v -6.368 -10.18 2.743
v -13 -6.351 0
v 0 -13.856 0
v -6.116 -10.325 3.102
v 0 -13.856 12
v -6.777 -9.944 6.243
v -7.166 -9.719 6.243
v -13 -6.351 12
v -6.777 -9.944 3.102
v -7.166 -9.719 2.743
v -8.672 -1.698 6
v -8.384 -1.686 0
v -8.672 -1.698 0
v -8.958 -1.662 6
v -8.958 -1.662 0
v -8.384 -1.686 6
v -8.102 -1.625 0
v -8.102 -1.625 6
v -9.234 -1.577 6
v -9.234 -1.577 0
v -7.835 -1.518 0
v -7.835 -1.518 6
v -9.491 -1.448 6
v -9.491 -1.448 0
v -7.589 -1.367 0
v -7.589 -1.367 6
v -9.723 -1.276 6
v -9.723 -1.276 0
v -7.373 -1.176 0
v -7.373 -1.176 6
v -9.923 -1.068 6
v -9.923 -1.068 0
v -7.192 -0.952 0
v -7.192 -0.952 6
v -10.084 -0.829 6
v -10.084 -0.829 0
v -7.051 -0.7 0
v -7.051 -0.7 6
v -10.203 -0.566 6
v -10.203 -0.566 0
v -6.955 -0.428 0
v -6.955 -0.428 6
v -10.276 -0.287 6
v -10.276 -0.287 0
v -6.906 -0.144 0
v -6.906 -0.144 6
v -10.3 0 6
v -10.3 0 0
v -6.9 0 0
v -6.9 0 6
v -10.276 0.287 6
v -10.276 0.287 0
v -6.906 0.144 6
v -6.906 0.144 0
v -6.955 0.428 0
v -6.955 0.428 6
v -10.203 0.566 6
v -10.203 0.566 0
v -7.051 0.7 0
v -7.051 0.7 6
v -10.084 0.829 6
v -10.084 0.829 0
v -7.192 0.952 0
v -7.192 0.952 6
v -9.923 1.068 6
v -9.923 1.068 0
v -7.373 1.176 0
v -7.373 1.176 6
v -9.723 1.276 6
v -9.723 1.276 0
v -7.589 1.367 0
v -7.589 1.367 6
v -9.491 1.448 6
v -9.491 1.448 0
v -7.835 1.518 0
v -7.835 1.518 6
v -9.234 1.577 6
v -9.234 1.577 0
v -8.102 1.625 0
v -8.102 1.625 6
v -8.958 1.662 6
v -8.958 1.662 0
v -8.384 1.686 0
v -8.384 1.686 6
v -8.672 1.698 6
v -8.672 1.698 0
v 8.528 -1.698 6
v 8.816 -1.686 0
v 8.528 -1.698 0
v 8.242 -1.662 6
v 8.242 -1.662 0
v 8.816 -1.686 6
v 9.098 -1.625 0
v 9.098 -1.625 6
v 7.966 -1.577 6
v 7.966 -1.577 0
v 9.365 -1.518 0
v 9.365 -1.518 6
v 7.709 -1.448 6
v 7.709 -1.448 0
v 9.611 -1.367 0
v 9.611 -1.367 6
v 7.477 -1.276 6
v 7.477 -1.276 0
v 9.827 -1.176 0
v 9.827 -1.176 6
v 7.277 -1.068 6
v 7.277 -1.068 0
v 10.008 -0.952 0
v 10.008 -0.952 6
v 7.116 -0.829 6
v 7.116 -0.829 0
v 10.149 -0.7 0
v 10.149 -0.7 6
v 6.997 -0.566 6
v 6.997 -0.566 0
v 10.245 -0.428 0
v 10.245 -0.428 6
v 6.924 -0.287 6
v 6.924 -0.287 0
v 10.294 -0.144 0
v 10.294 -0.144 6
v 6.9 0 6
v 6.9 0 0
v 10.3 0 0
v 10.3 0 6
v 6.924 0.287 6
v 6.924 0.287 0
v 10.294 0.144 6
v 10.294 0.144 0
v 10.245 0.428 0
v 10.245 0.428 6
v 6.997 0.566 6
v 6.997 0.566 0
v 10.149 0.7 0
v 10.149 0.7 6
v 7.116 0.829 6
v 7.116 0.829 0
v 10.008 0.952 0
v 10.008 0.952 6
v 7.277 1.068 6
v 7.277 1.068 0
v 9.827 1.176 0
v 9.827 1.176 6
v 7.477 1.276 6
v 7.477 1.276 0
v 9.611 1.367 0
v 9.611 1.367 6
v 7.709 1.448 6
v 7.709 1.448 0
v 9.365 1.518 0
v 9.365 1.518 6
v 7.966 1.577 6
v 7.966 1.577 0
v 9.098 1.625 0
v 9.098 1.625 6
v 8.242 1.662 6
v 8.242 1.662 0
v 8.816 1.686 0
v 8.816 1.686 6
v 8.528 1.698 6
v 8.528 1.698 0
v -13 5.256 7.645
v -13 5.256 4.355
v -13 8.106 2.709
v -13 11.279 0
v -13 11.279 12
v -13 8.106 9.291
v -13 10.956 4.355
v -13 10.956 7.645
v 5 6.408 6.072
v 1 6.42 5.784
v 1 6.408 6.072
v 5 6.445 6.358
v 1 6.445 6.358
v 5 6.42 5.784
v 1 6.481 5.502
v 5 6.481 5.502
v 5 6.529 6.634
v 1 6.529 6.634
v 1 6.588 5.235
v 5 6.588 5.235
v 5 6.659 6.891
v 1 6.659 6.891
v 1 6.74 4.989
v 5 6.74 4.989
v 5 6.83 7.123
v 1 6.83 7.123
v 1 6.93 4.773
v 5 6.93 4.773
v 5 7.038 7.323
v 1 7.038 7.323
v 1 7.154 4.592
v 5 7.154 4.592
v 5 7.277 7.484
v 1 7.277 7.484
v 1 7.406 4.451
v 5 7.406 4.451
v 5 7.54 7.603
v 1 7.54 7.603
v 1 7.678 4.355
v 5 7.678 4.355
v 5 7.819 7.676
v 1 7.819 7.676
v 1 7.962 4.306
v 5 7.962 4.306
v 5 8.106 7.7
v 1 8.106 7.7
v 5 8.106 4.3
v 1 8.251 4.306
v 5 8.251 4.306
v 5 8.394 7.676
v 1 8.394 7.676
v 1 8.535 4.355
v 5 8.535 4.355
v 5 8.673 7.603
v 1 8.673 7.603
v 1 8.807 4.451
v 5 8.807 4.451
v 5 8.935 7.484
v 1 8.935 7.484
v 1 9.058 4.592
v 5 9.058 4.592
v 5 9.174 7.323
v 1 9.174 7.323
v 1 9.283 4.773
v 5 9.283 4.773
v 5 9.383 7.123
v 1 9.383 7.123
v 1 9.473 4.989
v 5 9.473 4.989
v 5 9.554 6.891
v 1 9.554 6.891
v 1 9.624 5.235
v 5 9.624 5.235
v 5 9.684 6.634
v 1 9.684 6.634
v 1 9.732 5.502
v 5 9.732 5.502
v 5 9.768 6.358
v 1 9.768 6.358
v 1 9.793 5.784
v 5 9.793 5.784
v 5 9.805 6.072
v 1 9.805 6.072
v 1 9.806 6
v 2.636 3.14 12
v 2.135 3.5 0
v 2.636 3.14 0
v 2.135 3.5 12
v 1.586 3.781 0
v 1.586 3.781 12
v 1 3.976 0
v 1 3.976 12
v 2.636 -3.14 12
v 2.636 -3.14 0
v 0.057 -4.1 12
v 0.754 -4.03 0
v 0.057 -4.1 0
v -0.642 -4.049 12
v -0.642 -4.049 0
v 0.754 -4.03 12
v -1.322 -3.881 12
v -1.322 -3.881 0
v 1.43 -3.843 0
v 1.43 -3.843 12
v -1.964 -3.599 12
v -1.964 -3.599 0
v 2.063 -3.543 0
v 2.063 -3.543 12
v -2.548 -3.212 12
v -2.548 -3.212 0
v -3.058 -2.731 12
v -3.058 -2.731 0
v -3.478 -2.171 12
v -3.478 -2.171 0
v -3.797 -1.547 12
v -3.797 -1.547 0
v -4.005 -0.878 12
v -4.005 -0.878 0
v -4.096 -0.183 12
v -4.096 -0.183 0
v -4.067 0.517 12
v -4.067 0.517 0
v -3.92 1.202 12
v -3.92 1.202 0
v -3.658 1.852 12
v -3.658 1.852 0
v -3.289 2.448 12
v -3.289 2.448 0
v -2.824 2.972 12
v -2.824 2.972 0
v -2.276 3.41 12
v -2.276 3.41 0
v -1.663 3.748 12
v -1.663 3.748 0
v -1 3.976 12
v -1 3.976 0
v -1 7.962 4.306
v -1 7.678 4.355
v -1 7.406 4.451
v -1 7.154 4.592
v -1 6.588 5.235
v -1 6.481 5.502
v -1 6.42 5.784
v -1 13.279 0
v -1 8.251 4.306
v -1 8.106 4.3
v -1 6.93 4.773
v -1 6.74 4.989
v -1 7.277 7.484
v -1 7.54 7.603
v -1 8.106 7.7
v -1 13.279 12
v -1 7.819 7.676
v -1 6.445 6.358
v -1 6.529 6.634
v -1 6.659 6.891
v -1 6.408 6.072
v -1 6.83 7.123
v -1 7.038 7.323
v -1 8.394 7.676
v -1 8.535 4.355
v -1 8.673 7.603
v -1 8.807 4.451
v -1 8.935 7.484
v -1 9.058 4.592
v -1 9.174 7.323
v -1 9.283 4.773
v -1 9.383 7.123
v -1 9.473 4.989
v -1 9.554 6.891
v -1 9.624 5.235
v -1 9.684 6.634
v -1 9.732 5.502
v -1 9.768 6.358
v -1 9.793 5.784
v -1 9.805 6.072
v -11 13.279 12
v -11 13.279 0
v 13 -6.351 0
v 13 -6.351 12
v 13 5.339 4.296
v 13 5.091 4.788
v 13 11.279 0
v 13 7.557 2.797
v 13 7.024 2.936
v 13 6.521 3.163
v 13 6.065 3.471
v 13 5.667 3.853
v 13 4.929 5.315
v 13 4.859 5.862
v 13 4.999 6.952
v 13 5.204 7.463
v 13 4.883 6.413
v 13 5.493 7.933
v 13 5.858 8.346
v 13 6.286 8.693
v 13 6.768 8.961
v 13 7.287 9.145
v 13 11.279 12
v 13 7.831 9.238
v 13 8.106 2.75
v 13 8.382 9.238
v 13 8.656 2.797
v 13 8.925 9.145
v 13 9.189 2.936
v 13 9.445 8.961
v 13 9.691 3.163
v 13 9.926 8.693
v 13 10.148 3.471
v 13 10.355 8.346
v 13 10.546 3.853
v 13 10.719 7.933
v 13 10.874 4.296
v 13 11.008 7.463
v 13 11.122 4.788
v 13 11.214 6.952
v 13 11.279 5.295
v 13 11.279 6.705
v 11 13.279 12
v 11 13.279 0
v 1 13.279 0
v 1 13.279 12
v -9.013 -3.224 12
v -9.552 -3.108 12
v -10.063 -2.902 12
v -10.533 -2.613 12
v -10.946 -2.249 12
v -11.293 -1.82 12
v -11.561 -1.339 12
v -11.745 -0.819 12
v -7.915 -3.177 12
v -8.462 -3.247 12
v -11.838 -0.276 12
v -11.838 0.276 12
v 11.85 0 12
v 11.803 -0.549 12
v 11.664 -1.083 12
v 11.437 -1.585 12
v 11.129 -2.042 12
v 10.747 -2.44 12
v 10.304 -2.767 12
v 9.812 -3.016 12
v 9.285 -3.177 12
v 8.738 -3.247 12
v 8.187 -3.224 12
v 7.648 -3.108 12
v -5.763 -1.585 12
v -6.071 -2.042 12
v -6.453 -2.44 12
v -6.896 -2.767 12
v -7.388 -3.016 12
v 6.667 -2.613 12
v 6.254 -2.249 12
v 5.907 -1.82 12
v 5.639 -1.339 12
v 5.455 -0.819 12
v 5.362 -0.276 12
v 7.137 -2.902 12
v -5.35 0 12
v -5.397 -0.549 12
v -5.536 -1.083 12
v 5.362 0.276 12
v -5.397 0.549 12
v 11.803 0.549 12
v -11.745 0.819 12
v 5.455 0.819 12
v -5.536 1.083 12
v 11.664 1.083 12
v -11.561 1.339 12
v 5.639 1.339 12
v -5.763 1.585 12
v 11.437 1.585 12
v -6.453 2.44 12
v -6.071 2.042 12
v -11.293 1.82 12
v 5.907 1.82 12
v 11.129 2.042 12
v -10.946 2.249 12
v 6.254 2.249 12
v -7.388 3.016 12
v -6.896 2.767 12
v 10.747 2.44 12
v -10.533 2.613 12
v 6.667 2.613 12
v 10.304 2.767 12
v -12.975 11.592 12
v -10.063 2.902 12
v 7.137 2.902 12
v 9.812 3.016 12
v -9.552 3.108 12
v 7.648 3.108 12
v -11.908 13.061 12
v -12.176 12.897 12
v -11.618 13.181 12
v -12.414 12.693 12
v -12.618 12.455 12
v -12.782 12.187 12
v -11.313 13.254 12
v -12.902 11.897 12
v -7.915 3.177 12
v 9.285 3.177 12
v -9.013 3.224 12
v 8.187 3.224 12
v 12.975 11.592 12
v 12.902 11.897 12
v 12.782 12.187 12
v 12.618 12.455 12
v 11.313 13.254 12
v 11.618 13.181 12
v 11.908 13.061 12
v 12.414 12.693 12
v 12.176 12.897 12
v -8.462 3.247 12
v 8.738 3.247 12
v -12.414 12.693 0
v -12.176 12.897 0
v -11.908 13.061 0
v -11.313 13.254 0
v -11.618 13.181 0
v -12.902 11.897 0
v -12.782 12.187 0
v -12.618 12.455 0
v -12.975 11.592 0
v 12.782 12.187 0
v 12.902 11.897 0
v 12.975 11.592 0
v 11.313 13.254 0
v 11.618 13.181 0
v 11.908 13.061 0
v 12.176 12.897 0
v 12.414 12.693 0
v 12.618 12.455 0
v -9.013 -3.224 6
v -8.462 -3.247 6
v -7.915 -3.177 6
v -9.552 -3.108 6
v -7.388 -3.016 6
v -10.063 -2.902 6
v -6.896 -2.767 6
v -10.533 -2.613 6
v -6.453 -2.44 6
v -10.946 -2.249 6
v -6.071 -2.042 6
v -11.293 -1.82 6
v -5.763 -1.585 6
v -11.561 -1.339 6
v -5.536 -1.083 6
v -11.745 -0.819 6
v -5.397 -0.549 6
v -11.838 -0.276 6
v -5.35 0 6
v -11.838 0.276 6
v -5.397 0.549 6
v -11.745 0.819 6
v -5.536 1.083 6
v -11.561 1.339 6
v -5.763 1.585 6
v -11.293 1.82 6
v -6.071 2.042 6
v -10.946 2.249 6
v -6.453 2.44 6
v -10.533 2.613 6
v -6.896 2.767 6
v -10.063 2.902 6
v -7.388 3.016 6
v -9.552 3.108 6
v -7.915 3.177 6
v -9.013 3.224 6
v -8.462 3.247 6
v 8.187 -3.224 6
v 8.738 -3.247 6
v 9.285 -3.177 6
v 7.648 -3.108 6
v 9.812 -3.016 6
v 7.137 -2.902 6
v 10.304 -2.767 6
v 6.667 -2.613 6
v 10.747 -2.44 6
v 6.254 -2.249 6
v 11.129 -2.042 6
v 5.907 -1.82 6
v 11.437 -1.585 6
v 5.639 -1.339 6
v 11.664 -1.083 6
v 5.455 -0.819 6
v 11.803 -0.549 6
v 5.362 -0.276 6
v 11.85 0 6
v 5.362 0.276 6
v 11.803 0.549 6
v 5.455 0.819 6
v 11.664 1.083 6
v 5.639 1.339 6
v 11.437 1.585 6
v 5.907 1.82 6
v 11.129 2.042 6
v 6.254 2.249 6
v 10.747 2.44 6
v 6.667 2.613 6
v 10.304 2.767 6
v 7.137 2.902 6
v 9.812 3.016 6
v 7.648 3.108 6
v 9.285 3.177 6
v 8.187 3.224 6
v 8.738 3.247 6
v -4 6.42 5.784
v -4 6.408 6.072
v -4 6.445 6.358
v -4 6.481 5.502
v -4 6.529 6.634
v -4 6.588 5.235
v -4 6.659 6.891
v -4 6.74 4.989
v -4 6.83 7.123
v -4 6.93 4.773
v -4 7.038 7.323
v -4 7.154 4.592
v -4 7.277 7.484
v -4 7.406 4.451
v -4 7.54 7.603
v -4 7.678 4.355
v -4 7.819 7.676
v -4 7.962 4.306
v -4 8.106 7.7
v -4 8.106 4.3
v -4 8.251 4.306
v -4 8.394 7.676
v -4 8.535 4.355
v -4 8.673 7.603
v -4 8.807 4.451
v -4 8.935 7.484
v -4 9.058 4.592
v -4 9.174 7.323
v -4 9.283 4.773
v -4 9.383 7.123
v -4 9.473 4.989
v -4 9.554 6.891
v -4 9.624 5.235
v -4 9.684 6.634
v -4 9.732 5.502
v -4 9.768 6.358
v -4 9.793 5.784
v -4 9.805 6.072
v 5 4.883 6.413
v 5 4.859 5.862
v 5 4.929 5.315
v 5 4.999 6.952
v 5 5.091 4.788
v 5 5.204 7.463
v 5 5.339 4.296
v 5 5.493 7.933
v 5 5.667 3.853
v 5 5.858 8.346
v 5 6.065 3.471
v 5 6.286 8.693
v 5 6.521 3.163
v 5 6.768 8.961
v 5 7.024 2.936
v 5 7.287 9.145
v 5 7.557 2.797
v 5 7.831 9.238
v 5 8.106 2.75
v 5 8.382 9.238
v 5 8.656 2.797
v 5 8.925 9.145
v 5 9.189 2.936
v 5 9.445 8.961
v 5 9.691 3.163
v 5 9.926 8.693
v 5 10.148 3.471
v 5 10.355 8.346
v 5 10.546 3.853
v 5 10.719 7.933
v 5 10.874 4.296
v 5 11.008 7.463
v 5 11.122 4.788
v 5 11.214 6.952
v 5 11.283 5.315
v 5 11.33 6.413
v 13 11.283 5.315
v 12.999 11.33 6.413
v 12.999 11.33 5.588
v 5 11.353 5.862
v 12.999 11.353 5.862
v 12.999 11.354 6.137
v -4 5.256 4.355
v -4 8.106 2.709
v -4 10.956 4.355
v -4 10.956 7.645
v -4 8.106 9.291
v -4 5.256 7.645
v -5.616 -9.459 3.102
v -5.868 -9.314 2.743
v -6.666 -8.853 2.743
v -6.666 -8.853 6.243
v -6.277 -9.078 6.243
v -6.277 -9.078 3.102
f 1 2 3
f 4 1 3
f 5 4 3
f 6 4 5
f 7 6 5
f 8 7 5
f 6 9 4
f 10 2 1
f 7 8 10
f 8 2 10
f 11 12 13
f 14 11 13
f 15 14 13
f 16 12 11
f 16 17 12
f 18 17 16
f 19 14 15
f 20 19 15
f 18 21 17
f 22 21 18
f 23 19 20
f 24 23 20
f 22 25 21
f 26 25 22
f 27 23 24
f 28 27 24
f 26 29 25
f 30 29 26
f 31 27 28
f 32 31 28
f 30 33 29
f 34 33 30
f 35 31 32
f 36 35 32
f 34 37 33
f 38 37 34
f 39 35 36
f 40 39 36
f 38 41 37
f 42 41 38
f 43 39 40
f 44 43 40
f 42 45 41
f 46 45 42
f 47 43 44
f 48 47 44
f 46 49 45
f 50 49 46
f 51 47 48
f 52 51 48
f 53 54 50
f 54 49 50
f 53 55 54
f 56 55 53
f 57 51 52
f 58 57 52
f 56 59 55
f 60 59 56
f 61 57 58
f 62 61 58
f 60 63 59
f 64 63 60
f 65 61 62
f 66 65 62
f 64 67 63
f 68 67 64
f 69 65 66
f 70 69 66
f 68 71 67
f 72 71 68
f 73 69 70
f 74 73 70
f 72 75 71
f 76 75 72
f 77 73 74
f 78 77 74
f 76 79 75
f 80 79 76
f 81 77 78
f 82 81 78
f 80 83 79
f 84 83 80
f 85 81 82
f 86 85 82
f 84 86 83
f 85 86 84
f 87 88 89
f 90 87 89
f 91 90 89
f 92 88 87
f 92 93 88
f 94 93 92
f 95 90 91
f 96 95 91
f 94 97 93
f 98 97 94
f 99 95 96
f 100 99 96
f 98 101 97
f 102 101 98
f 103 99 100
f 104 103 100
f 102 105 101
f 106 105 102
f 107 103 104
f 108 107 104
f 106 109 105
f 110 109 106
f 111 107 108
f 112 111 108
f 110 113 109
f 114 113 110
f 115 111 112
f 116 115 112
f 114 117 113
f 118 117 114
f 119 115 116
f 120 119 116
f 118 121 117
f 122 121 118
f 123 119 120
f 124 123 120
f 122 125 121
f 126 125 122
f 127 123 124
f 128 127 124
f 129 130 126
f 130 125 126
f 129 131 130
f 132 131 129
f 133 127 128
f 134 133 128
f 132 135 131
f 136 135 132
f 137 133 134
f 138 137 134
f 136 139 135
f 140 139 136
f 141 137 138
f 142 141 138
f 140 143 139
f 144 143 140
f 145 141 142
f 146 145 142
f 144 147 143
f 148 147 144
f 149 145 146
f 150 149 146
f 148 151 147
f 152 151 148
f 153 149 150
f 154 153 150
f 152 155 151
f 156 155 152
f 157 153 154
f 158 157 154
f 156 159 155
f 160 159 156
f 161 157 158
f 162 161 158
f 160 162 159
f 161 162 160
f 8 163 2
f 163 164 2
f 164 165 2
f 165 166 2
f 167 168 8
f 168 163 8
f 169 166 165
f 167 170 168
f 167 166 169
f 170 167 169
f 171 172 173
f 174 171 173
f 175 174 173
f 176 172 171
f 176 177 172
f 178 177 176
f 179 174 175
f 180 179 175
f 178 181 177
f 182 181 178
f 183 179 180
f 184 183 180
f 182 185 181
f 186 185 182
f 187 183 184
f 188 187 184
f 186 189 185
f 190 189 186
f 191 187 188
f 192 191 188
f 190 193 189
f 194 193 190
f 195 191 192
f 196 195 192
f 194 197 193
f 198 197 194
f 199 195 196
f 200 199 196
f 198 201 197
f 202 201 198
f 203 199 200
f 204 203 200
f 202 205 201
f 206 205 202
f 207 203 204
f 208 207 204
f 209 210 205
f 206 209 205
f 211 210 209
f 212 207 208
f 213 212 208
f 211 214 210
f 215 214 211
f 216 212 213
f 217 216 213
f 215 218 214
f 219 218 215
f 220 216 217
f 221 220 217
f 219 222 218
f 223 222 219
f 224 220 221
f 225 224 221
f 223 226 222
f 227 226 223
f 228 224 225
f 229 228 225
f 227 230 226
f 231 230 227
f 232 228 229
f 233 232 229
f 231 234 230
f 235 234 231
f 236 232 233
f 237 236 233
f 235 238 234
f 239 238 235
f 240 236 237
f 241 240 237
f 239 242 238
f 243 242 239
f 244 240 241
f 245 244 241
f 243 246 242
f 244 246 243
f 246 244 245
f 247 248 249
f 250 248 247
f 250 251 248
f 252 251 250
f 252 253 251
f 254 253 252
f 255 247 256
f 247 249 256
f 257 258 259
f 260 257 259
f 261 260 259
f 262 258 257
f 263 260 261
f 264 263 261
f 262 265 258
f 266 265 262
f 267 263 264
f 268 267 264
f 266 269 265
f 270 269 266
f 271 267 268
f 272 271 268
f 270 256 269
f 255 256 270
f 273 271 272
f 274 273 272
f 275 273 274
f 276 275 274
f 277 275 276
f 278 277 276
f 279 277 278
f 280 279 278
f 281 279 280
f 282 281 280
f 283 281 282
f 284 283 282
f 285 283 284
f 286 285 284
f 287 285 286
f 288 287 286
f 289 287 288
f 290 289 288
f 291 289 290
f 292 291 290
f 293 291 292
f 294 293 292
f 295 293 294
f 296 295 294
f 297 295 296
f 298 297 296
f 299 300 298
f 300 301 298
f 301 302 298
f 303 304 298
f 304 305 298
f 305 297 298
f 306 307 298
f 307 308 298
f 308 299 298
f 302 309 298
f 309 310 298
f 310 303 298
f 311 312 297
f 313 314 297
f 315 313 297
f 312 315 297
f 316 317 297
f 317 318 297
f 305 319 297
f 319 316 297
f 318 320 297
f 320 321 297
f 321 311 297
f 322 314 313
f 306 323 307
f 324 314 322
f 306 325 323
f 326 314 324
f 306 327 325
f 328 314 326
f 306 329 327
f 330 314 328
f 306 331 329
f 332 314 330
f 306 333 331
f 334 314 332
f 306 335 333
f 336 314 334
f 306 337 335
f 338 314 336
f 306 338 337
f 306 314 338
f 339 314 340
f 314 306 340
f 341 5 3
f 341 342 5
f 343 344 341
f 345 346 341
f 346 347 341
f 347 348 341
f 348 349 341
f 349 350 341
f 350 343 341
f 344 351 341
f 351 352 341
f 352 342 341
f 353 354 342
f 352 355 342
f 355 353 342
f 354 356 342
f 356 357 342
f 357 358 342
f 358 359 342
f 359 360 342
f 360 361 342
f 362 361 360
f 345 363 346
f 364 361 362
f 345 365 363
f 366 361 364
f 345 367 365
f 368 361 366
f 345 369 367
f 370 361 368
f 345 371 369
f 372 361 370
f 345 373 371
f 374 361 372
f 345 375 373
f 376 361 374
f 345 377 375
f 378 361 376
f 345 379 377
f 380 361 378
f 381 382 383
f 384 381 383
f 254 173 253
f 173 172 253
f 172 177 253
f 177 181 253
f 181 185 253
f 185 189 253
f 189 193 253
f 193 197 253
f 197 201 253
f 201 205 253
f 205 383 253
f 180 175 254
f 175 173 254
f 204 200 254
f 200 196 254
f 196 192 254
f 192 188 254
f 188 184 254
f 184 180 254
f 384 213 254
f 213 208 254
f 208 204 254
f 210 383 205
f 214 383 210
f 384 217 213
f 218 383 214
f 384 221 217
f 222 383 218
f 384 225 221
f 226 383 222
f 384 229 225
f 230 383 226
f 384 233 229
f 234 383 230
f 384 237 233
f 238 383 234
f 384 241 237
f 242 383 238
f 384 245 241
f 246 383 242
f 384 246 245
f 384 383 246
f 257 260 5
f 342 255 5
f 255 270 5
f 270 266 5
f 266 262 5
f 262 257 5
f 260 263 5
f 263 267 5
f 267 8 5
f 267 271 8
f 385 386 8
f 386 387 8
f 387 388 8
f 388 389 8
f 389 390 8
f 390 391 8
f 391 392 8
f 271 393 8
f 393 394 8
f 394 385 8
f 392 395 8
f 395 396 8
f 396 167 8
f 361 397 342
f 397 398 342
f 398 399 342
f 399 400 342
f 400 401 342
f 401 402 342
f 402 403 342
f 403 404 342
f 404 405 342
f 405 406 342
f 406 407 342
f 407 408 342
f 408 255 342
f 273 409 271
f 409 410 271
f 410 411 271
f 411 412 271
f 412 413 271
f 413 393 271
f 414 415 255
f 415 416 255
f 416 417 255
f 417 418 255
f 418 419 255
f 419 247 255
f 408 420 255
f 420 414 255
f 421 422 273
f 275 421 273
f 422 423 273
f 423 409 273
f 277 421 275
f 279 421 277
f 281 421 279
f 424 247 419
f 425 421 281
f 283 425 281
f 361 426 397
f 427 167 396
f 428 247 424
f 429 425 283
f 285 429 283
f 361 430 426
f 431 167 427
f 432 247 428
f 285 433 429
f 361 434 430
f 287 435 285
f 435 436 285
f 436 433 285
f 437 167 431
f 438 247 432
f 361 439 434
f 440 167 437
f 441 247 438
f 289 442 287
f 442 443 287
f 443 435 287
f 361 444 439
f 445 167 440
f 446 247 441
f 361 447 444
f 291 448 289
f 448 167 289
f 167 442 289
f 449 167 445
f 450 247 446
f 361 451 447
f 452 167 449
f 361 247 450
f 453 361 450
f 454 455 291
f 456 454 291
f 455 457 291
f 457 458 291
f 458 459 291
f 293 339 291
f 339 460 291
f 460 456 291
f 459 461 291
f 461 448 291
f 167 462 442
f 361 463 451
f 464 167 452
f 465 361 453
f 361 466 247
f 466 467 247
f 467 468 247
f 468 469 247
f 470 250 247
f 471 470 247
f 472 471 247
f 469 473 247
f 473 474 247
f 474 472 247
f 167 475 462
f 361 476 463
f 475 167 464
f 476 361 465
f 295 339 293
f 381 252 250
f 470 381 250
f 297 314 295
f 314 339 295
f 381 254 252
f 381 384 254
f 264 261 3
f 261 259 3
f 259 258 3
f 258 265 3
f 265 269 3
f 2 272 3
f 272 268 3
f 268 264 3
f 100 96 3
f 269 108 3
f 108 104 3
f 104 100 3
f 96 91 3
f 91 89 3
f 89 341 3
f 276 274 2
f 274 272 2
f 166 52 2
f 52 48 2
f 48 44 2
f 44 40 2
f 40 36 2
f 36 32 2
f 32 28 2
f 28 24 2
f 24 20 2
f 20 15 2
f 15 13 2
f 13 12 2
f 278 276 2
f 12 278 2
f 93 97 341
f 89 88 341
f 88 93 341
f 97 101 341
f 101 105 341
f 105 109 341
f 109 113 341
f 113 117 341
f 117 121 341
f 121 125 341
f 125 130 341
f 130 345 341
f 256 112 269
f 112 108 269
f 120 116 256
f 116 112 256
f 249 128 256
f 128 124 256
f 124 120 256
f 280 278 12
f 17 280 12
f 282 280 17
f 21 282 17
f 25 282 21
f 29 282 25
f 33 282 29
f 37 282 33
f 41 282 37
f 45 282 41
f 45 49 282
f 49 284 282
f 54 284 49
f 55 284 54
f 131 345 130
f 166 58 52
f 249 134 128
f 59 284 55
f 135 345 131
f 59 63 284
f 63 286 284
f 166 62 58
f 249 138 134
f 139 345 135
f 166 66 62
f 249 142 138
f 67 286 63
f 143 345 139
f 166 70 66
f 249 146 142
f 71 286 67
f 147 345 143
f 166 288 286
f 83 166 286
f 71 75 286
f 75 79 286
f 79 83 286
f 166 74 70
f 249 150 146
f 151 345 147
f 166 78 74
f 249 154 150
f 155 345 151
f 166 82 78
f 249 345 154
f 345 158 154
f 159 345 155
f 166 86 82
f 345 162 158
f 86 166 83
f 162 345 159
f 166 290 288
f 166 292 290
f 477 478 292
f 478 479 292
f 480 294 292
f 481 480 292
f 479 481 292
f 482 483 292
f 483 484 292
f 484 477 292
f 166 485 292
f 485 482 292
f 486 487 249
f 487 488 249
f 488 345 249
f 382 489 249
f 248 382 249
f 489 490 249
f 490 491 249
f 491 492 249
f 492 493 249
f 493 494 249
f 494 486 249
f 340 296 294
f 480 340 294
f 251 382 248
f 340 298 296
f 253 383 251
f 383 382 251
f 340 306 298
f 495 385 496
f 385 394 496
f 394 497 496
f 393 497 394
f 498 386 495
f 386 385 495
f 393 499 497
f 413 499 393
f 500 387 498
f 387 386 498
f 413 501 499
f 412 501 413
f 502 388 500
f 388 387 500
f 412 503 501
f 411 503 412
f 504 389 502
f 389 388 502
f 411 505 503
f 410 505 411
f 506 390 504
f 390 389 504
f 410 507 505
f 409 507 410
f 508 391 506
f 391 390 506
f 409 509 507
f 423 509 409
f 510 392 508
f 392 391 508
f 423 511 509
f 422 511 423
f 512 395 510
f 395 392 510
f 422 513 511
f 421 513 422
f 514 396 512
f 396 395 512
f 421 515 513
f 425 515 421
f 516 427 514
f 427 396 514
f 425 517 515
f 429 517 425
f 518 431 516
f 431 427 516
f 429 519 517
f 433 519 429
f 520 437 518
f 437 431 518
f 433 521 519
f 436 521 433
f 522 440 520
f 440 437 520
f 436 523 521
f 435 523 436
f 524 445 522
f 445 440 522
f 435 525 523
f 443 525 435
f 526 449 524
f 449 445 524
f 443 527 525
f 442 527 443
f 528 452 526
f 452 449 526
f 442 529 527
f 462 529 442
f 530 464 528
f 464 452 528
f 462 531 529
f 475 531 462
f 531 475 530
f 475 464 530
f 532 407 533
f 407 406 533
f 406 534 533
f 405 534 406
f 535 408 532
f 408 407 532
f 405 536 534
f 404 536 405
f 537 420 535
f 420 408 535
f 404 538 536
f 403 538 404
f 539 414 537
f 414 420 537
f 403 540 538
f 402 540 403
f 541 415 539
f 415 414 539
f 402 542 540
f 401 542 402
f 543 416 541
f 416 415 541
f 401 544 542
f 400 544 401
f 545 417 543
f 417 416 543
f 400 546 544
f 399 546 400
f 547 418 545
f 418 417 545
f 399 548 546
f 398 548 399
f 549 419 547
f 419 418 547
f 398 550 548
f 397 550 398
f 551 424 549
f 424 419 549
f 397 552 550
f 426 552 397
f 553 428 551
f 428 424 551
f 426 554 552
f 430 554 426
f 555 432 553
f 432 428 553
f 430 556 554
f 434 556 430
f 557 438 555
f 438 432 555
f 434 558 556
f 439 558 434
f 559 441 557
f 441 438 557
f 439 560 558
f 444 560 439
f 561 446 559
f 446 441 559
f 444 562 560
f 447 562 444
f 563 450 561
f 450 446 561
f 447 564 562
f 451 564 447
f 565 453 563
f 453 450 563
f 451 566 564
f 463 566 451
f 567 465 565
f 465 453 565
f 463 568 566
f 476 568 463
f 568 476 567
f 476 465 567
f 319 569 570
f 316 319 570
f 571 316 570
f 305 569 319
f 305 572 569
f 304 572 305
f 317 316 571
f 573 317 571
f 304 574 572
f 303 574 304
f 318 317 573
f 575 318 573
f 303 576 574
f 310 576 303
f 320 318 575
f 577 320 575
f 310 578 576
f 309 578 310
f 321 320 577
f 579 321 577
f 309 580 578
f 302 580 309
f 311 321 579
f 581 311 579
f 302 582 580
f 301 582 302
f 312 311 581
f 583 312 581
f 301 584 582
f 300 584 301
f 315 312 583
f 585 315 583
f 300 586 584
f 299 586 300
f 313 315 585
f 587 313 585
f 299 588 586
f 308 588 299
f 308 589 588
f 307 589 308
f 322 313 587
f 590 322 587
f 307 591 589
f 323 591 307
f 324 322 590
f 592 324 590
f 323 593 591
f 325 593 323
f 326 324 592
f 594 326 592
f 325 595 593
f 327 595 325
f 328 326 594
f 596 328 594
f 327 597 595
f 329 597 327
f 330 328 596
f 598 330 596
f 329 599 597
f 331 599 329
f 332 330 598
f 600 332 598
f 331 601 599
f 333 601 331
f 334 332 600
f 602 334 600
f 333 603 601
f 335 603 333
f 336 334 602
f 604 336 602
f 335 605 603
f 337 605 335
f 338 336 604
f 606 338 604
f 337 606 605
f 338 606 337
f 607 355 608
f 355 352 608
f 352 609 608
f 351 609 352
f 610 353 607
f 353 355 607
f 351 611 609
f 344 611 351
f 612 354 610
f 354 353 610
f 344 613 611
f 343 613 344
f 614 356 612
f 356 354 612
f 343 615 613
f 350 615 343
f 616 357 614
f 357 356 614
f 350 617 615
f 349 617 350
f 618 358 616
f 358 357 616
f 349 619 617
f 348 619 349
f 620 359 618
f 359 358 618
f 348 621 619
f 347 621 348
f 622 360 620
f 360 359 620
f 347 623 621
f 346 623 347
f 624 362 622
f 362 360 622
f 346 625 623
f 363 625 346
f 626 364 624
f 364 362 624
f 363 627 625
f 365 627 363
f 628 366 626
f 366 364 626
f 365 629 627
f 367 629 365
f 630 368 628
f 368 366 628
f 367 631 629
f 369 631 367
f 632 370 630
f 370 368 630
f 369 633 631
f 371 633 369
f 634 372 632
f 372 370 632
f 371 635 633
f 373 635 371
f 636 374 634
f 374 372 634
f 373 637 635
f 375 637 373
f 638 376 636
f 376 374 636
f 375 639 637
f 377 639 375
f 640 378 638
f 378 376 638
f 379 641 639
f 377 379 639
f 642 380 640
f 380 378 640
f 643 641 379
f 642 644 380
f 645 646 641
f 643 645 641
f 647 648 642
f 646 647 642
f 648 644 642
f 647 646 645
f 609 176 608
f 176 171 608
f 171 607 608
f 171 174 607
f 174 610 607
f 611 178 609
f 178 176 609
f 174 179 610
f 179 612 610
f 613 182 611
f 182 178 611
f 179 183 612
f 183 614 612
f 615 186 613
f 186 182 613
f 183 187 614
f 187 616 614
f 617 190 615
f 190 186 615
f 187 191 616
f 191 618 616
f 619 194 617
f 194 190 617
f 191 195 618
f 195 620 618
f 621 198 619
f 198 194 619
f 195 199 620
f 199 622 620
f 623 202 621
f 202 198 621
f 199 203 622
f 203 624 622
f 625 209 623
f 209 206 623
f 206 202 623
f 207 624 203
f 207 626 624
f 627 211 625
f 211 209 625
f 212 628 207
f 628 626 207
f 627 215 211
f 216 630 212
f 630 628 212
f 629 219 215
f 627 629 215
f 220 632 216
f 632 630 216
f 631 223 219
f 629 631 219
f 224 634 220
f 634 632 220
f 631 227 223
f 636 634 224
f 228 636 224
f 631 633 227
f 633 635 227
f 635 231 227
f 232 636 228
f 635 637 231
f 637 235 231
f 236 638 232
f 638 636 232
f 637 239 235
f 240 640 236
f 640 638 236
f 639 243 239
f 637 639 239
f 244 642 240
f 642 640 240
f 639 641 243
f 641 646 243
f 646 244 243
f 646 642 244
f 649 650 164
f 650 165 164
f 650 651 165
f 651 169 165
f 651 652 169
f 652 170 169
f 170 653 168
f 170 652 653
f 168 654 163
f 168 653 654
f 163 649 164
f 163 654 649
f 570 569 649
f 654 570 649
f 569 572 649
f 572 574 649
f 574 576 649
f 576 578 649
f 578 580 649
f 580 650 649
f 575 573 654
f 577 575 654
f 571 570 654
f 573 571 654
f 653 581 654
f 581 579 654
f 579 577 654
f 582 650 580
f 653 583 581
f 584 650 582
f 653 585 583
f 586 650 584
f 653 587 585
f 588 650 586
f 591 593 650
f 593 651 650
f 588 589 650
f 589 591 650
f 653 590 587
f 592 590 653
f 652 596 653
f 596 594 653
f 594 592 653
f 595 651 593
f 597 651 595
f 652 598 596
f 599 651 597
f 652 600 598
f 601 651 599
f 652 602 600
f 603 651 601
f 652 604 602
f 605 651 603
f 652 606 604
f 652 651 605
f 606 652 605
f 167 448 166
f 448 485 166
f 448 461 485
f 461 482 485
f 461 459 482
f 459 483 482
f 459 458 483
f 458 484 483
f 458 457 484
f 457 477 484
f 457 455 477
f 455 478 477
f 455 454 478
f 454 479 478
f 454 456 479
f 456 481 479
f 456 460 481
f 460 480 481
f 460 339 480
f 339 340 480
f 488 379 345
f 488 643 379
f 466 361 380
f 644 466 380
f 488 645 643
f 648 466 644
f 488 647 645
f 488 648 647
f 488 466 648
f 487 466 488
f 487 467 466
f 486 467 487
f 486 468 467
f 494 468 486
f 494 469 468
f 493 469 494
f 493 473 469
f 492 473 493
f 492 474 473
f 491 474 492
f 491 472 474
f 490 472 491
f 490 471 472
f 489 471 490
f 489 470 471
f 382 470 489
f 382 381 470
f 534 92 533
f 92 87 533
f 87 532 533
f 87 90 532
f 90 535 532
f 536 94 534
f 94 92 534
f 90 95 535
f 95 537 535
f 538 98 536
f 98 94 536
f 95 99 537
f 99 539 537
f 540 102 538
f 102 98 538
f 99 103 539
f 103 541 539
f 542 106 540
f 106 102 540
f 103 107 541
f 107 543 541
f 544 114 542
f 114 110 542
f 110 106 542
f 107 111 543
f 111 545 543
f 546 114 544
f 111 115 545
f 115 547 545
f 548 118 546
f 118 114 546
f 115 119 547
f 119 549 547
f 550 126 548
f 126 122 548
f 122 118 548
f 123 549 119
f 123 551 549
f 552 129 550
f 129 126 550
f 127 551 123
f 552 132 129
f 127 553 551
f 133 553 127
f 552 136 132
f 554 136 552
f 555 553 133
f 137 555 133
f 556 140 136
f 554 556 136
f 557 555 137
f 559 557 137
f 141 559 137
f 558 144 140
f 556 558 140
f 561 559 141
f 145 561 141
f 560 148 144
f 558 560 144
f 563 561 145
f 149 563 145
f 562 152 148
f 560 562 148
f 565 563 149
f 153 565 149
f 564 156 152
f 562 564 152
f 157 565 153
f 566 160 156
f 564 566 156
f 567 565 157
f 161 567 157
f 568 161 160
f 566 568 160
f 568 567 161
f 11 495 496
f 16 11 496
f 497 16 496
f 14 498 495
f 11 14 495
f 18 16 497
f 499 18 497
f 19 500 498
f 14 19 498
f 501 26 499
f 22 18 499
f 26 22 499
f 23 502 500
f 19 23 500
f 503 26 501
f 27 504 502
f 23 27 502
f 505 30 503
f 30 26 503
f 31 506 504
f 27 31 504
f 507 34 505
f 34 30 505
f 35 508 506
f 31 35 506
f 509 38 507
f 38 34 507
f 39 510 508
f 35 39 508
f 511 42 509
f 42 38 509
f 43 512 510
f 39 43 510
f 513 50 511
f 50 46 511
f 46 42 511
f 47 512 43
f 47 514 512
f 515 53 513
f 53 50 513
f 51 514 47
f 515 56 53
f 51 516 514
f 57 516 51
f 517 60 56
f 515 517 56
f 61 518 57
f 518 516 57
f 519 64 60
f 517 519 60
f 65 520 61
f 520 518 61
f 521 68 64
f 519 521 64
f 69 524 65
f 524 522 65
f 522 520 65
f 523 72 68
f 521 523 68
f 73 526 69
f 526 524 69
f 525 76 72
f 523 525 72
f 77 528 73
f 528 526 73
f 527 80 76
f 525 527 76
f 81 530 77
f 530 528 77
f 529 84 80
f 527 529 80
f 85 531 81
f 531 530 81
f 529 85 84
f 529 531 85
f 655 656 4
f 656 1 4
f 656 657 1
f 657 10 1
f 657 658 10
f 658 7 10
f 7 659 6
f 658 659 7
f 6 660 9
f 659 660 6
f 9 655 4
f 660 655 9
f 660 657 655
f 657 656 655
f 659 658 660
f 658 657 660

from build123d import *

# Parameters (mm, degrees)
BOSS_EXTRUDE1_DEPTH            = 12
SKETCH41_R                     = 1.7
CUT_EXTRUDE7_DEPTH             = 18
CBORE_FOR_M3_SHCS1_D           = 3.4
CBORE_FOR_M3_SHCS1_CBORE_D     = 6.5
CBORE_FOR_M3_SHCS1_CBORE_DEPTH = 3
F_3DSKETCH3_START              = 9
F_3DSKETCH3_OUTLINE_R          = 3.25
F_3DSKETCH3_OUTLINE_R_2        = 1.7
F_3DSKETCH3_DEPTH              = 3
CUT_EXTRUDE10_DEPTH            = 15
CUT_EXTRUDE10_DEPTH_BACK       = 15
SKETCH52_R                     = 1.7
SKETCH58_R                     = 3.25
CUT_EXTRUDE11_DEPTH            = 8
CUT_EXTRUDE12_DEPTH            = 4
CUT_EXTRUDE12_DEPTH_BACK       = 6
FILLET1_R                      = 2
SKETCH61_R                     = 3.25
CUT_EXTRUDE13_DEPTH            = 6
CUT_EXTRUDE14_DEPTH            = 1


# Read off the part's stored shape, not the designer's step: 3DSketch3
with BuildPart() as part:
    # Sketch1 → Boss-Extrude1 (new body)
    with BuildSketch(Plane(origin=(0, 0, 0), x_dir=(0, 1, 0), z_dir=(0, 0, 1))):
        with BuildLine():
            Line((-6.350852961, -13), (13.279056191, -13))
            Line((13.279056191, -13), (13.279056191, -1))
            Line((13.279056191, -1), (3.97617907, -1))
            ThreePointArc((3.97617907, -1), (3.650947901, -1.865631106), (3.14, -2.636361129))
            Line((3.14, -2.636361129), (-3.14, -2.636361129))
            ThreePointArc((-3.14, -2.636361129), (-3.852531635, -1.402854233), (-4.1, 0))
            ThreePointArc((-4.1, 0), (-0.503818326, 4.06892702), (3.97617907, 1))
            Line((3.97617907, 1), (13.279056191, 1))
            Line((13.279056191, 1), (13.279056191, 13))
            Line((13.279056191, 13), (-6.350852961, 13))
            Line((-6.350852961, 13), (-13.856406461, 0))
            Line((-13.856406461, 0), (-6.350852961, -13))
        make_face()
    extrude(amount=BOSS_EXTRUDE1_DEPTH)

    # Sketch41 → Cut-Extrude7 (cut)
    with BuildSketch(Plane(origin=(0, 0, 0), x_dir=(0, 1, 0), z_dir=(0, 0, 1))):
        with Locations(Location((0, 8.6, 0), (0, 0, 270))):
            Circle(SKETCH41_R)
        with Locations(Location((0, -8.6, 0), (0, 0, 270))):
            Circle(SKETCH41_R)
    extrude(amount=CUT_EXTRUDE7_DEPTH, mode=Mode.SUBTRACT)

    # CBORE for M3 SHCS1 (through all)
    with Locations(Plane(origin=(-8.6, 0, 12), x_dir=(1, 0, 0), z_dir=(0, 0, 1))):
        with Locations((0, 0)):
            CounterBoreHole(CBORE_FOR_M3_SHCS1_D / 2, CBORE_FOR_M3_SHCS1_CBORE_D / 2, CBORE_FOR_M3_SHCS1_CBORE_DEPTH)

    # 3DSketch3 outline → 3DSketch3 (cut)
    with BuildSketch(Plane.XY.offset(F_3DSKETCH3_START)):
        with Locations((8.6, 0)):
            Circle(F_3DSKETCH3_OUTLINE_R)
        with Locations((8.6, 0)):
            Circle(F_3DSKETCH3_OUTLINE_R_2, mode=Mode.SUBTRACT)
    extrude(amount=F_3DSKETCH3_DEPTH, mode=Mode.SUBTRACT)

    # Sketch52 → Cut-Extrude10 (cut, two sides: drawn at the far end of the back side and taken through both)
    with BuildSketch(Plane.YZ.offset(-1).offset(-CUT_EXTRUDE10_DEPTH_BACK)):
        with Locations((8.106406461, 6)):
            Circle(SKETCH52_R)
    extrude(amount=CUT_EXTRUDE10_DEPTH + CUT_EXTRUDE10_DEPTH_BACK, mode=Mode.SUBTRACT)

    # Sketch58 → Cut-Extrude11 (cut)
    with BuildSketch(Plane.YZ.offset(13)):
        with Locations(Location((8.106406461, 6, 0), (0, 0, 270))):
            Circle(SKETCH58_R)
    extrude(amount=-CUT_EXTRUDE11_DEPTH, mode=Mode.SUBTRACT)

    # Sketch60 → Cut-Extrude12 (cut, two sides: drawn at the far end of the back side and taken through both)
    with BuildSketch(Plane.YZ.offset(-8).offset(-CUT_EXTRUDE12_DEPTH_BACK)):
        Polygon((8.106406461, 2.709103466), (10.956406461, 4.354551733), (10.956406461, 7.645448267), (8.106406461, 9.290896534), (5.256406461, 7.645448267), (5.256406461, 4.354551733), align=None)
    extrude(amount=CUT_EXTRUDE12_DEPTH + CUT_EXTRUDE12_DEPTH_BACK, mode=Mode.SUBTRACT)

    # Fillet1
    # the kernel refuses this fillet: 2 mm, written as the material it takes off along each edge
    with BuildSketch(Plane(origin=(13, 13.279056191, -5), x_dir=(0, -1, 0), z_dir=(0, 0, 1)), Plane(origin=(-13, 13.279056191, -5), x_dir=(1, 0, 0), z_dir=(0, 0, 1))) as fillet1_piece_1:
        with BuildLine():
            CenterArc((FILLET1_R, -FILLET1_R), FILLET1_R, 90, 90)
            Line((0, -FILLET1_R), (0, 0))
            Line((0, 0), (FILLET1_R, 0))
        make_face()
    extrude(amount=22, mode=Mode.SUBTRACT)

    # Sketch61 → Cut-Extrude13 (cut)
    with BuildSketch(Plane(origin=(0, 0, 12), x_dir=(0, 1, 0), z_dir=(0, 0, 1))):
        with Locations(Location((0, 8.6, 0), (0, 0, 270))):
            Circle(SKETCH61_R)
        with Locations(Location((0, -8.6, 0), (0, 0, 270))):
            Circle(SKETCH61_R)
    extrude(amount=-CUT_EXTRUDE13_DEPTH, mode=Mode.SUBTRACT)

    # Sketch62 → Cut-Extrude14 (cut)
    with BuildSketch(Plane(origin=(-6, -10.392304845, 0), x_dir=(-0.8660254037844386, 0.5000000000000001, 0), z_dir=(-0.5000000000000001, -0.8660254037844386, 0))):
        Polygon((0.424736725, -2.743282535), (1.346010764, -2.743282535), (1.346010764, -6.243282535), (0.897292815, -6.243282535), (0.897292815, -3.102256894), (0.134472302, -3.102256894), align=None)
    extrude(amount=-CUT_EXTRUDE14_DEPTH, mode=Mode.SUBTRACT)


solid = part.part
